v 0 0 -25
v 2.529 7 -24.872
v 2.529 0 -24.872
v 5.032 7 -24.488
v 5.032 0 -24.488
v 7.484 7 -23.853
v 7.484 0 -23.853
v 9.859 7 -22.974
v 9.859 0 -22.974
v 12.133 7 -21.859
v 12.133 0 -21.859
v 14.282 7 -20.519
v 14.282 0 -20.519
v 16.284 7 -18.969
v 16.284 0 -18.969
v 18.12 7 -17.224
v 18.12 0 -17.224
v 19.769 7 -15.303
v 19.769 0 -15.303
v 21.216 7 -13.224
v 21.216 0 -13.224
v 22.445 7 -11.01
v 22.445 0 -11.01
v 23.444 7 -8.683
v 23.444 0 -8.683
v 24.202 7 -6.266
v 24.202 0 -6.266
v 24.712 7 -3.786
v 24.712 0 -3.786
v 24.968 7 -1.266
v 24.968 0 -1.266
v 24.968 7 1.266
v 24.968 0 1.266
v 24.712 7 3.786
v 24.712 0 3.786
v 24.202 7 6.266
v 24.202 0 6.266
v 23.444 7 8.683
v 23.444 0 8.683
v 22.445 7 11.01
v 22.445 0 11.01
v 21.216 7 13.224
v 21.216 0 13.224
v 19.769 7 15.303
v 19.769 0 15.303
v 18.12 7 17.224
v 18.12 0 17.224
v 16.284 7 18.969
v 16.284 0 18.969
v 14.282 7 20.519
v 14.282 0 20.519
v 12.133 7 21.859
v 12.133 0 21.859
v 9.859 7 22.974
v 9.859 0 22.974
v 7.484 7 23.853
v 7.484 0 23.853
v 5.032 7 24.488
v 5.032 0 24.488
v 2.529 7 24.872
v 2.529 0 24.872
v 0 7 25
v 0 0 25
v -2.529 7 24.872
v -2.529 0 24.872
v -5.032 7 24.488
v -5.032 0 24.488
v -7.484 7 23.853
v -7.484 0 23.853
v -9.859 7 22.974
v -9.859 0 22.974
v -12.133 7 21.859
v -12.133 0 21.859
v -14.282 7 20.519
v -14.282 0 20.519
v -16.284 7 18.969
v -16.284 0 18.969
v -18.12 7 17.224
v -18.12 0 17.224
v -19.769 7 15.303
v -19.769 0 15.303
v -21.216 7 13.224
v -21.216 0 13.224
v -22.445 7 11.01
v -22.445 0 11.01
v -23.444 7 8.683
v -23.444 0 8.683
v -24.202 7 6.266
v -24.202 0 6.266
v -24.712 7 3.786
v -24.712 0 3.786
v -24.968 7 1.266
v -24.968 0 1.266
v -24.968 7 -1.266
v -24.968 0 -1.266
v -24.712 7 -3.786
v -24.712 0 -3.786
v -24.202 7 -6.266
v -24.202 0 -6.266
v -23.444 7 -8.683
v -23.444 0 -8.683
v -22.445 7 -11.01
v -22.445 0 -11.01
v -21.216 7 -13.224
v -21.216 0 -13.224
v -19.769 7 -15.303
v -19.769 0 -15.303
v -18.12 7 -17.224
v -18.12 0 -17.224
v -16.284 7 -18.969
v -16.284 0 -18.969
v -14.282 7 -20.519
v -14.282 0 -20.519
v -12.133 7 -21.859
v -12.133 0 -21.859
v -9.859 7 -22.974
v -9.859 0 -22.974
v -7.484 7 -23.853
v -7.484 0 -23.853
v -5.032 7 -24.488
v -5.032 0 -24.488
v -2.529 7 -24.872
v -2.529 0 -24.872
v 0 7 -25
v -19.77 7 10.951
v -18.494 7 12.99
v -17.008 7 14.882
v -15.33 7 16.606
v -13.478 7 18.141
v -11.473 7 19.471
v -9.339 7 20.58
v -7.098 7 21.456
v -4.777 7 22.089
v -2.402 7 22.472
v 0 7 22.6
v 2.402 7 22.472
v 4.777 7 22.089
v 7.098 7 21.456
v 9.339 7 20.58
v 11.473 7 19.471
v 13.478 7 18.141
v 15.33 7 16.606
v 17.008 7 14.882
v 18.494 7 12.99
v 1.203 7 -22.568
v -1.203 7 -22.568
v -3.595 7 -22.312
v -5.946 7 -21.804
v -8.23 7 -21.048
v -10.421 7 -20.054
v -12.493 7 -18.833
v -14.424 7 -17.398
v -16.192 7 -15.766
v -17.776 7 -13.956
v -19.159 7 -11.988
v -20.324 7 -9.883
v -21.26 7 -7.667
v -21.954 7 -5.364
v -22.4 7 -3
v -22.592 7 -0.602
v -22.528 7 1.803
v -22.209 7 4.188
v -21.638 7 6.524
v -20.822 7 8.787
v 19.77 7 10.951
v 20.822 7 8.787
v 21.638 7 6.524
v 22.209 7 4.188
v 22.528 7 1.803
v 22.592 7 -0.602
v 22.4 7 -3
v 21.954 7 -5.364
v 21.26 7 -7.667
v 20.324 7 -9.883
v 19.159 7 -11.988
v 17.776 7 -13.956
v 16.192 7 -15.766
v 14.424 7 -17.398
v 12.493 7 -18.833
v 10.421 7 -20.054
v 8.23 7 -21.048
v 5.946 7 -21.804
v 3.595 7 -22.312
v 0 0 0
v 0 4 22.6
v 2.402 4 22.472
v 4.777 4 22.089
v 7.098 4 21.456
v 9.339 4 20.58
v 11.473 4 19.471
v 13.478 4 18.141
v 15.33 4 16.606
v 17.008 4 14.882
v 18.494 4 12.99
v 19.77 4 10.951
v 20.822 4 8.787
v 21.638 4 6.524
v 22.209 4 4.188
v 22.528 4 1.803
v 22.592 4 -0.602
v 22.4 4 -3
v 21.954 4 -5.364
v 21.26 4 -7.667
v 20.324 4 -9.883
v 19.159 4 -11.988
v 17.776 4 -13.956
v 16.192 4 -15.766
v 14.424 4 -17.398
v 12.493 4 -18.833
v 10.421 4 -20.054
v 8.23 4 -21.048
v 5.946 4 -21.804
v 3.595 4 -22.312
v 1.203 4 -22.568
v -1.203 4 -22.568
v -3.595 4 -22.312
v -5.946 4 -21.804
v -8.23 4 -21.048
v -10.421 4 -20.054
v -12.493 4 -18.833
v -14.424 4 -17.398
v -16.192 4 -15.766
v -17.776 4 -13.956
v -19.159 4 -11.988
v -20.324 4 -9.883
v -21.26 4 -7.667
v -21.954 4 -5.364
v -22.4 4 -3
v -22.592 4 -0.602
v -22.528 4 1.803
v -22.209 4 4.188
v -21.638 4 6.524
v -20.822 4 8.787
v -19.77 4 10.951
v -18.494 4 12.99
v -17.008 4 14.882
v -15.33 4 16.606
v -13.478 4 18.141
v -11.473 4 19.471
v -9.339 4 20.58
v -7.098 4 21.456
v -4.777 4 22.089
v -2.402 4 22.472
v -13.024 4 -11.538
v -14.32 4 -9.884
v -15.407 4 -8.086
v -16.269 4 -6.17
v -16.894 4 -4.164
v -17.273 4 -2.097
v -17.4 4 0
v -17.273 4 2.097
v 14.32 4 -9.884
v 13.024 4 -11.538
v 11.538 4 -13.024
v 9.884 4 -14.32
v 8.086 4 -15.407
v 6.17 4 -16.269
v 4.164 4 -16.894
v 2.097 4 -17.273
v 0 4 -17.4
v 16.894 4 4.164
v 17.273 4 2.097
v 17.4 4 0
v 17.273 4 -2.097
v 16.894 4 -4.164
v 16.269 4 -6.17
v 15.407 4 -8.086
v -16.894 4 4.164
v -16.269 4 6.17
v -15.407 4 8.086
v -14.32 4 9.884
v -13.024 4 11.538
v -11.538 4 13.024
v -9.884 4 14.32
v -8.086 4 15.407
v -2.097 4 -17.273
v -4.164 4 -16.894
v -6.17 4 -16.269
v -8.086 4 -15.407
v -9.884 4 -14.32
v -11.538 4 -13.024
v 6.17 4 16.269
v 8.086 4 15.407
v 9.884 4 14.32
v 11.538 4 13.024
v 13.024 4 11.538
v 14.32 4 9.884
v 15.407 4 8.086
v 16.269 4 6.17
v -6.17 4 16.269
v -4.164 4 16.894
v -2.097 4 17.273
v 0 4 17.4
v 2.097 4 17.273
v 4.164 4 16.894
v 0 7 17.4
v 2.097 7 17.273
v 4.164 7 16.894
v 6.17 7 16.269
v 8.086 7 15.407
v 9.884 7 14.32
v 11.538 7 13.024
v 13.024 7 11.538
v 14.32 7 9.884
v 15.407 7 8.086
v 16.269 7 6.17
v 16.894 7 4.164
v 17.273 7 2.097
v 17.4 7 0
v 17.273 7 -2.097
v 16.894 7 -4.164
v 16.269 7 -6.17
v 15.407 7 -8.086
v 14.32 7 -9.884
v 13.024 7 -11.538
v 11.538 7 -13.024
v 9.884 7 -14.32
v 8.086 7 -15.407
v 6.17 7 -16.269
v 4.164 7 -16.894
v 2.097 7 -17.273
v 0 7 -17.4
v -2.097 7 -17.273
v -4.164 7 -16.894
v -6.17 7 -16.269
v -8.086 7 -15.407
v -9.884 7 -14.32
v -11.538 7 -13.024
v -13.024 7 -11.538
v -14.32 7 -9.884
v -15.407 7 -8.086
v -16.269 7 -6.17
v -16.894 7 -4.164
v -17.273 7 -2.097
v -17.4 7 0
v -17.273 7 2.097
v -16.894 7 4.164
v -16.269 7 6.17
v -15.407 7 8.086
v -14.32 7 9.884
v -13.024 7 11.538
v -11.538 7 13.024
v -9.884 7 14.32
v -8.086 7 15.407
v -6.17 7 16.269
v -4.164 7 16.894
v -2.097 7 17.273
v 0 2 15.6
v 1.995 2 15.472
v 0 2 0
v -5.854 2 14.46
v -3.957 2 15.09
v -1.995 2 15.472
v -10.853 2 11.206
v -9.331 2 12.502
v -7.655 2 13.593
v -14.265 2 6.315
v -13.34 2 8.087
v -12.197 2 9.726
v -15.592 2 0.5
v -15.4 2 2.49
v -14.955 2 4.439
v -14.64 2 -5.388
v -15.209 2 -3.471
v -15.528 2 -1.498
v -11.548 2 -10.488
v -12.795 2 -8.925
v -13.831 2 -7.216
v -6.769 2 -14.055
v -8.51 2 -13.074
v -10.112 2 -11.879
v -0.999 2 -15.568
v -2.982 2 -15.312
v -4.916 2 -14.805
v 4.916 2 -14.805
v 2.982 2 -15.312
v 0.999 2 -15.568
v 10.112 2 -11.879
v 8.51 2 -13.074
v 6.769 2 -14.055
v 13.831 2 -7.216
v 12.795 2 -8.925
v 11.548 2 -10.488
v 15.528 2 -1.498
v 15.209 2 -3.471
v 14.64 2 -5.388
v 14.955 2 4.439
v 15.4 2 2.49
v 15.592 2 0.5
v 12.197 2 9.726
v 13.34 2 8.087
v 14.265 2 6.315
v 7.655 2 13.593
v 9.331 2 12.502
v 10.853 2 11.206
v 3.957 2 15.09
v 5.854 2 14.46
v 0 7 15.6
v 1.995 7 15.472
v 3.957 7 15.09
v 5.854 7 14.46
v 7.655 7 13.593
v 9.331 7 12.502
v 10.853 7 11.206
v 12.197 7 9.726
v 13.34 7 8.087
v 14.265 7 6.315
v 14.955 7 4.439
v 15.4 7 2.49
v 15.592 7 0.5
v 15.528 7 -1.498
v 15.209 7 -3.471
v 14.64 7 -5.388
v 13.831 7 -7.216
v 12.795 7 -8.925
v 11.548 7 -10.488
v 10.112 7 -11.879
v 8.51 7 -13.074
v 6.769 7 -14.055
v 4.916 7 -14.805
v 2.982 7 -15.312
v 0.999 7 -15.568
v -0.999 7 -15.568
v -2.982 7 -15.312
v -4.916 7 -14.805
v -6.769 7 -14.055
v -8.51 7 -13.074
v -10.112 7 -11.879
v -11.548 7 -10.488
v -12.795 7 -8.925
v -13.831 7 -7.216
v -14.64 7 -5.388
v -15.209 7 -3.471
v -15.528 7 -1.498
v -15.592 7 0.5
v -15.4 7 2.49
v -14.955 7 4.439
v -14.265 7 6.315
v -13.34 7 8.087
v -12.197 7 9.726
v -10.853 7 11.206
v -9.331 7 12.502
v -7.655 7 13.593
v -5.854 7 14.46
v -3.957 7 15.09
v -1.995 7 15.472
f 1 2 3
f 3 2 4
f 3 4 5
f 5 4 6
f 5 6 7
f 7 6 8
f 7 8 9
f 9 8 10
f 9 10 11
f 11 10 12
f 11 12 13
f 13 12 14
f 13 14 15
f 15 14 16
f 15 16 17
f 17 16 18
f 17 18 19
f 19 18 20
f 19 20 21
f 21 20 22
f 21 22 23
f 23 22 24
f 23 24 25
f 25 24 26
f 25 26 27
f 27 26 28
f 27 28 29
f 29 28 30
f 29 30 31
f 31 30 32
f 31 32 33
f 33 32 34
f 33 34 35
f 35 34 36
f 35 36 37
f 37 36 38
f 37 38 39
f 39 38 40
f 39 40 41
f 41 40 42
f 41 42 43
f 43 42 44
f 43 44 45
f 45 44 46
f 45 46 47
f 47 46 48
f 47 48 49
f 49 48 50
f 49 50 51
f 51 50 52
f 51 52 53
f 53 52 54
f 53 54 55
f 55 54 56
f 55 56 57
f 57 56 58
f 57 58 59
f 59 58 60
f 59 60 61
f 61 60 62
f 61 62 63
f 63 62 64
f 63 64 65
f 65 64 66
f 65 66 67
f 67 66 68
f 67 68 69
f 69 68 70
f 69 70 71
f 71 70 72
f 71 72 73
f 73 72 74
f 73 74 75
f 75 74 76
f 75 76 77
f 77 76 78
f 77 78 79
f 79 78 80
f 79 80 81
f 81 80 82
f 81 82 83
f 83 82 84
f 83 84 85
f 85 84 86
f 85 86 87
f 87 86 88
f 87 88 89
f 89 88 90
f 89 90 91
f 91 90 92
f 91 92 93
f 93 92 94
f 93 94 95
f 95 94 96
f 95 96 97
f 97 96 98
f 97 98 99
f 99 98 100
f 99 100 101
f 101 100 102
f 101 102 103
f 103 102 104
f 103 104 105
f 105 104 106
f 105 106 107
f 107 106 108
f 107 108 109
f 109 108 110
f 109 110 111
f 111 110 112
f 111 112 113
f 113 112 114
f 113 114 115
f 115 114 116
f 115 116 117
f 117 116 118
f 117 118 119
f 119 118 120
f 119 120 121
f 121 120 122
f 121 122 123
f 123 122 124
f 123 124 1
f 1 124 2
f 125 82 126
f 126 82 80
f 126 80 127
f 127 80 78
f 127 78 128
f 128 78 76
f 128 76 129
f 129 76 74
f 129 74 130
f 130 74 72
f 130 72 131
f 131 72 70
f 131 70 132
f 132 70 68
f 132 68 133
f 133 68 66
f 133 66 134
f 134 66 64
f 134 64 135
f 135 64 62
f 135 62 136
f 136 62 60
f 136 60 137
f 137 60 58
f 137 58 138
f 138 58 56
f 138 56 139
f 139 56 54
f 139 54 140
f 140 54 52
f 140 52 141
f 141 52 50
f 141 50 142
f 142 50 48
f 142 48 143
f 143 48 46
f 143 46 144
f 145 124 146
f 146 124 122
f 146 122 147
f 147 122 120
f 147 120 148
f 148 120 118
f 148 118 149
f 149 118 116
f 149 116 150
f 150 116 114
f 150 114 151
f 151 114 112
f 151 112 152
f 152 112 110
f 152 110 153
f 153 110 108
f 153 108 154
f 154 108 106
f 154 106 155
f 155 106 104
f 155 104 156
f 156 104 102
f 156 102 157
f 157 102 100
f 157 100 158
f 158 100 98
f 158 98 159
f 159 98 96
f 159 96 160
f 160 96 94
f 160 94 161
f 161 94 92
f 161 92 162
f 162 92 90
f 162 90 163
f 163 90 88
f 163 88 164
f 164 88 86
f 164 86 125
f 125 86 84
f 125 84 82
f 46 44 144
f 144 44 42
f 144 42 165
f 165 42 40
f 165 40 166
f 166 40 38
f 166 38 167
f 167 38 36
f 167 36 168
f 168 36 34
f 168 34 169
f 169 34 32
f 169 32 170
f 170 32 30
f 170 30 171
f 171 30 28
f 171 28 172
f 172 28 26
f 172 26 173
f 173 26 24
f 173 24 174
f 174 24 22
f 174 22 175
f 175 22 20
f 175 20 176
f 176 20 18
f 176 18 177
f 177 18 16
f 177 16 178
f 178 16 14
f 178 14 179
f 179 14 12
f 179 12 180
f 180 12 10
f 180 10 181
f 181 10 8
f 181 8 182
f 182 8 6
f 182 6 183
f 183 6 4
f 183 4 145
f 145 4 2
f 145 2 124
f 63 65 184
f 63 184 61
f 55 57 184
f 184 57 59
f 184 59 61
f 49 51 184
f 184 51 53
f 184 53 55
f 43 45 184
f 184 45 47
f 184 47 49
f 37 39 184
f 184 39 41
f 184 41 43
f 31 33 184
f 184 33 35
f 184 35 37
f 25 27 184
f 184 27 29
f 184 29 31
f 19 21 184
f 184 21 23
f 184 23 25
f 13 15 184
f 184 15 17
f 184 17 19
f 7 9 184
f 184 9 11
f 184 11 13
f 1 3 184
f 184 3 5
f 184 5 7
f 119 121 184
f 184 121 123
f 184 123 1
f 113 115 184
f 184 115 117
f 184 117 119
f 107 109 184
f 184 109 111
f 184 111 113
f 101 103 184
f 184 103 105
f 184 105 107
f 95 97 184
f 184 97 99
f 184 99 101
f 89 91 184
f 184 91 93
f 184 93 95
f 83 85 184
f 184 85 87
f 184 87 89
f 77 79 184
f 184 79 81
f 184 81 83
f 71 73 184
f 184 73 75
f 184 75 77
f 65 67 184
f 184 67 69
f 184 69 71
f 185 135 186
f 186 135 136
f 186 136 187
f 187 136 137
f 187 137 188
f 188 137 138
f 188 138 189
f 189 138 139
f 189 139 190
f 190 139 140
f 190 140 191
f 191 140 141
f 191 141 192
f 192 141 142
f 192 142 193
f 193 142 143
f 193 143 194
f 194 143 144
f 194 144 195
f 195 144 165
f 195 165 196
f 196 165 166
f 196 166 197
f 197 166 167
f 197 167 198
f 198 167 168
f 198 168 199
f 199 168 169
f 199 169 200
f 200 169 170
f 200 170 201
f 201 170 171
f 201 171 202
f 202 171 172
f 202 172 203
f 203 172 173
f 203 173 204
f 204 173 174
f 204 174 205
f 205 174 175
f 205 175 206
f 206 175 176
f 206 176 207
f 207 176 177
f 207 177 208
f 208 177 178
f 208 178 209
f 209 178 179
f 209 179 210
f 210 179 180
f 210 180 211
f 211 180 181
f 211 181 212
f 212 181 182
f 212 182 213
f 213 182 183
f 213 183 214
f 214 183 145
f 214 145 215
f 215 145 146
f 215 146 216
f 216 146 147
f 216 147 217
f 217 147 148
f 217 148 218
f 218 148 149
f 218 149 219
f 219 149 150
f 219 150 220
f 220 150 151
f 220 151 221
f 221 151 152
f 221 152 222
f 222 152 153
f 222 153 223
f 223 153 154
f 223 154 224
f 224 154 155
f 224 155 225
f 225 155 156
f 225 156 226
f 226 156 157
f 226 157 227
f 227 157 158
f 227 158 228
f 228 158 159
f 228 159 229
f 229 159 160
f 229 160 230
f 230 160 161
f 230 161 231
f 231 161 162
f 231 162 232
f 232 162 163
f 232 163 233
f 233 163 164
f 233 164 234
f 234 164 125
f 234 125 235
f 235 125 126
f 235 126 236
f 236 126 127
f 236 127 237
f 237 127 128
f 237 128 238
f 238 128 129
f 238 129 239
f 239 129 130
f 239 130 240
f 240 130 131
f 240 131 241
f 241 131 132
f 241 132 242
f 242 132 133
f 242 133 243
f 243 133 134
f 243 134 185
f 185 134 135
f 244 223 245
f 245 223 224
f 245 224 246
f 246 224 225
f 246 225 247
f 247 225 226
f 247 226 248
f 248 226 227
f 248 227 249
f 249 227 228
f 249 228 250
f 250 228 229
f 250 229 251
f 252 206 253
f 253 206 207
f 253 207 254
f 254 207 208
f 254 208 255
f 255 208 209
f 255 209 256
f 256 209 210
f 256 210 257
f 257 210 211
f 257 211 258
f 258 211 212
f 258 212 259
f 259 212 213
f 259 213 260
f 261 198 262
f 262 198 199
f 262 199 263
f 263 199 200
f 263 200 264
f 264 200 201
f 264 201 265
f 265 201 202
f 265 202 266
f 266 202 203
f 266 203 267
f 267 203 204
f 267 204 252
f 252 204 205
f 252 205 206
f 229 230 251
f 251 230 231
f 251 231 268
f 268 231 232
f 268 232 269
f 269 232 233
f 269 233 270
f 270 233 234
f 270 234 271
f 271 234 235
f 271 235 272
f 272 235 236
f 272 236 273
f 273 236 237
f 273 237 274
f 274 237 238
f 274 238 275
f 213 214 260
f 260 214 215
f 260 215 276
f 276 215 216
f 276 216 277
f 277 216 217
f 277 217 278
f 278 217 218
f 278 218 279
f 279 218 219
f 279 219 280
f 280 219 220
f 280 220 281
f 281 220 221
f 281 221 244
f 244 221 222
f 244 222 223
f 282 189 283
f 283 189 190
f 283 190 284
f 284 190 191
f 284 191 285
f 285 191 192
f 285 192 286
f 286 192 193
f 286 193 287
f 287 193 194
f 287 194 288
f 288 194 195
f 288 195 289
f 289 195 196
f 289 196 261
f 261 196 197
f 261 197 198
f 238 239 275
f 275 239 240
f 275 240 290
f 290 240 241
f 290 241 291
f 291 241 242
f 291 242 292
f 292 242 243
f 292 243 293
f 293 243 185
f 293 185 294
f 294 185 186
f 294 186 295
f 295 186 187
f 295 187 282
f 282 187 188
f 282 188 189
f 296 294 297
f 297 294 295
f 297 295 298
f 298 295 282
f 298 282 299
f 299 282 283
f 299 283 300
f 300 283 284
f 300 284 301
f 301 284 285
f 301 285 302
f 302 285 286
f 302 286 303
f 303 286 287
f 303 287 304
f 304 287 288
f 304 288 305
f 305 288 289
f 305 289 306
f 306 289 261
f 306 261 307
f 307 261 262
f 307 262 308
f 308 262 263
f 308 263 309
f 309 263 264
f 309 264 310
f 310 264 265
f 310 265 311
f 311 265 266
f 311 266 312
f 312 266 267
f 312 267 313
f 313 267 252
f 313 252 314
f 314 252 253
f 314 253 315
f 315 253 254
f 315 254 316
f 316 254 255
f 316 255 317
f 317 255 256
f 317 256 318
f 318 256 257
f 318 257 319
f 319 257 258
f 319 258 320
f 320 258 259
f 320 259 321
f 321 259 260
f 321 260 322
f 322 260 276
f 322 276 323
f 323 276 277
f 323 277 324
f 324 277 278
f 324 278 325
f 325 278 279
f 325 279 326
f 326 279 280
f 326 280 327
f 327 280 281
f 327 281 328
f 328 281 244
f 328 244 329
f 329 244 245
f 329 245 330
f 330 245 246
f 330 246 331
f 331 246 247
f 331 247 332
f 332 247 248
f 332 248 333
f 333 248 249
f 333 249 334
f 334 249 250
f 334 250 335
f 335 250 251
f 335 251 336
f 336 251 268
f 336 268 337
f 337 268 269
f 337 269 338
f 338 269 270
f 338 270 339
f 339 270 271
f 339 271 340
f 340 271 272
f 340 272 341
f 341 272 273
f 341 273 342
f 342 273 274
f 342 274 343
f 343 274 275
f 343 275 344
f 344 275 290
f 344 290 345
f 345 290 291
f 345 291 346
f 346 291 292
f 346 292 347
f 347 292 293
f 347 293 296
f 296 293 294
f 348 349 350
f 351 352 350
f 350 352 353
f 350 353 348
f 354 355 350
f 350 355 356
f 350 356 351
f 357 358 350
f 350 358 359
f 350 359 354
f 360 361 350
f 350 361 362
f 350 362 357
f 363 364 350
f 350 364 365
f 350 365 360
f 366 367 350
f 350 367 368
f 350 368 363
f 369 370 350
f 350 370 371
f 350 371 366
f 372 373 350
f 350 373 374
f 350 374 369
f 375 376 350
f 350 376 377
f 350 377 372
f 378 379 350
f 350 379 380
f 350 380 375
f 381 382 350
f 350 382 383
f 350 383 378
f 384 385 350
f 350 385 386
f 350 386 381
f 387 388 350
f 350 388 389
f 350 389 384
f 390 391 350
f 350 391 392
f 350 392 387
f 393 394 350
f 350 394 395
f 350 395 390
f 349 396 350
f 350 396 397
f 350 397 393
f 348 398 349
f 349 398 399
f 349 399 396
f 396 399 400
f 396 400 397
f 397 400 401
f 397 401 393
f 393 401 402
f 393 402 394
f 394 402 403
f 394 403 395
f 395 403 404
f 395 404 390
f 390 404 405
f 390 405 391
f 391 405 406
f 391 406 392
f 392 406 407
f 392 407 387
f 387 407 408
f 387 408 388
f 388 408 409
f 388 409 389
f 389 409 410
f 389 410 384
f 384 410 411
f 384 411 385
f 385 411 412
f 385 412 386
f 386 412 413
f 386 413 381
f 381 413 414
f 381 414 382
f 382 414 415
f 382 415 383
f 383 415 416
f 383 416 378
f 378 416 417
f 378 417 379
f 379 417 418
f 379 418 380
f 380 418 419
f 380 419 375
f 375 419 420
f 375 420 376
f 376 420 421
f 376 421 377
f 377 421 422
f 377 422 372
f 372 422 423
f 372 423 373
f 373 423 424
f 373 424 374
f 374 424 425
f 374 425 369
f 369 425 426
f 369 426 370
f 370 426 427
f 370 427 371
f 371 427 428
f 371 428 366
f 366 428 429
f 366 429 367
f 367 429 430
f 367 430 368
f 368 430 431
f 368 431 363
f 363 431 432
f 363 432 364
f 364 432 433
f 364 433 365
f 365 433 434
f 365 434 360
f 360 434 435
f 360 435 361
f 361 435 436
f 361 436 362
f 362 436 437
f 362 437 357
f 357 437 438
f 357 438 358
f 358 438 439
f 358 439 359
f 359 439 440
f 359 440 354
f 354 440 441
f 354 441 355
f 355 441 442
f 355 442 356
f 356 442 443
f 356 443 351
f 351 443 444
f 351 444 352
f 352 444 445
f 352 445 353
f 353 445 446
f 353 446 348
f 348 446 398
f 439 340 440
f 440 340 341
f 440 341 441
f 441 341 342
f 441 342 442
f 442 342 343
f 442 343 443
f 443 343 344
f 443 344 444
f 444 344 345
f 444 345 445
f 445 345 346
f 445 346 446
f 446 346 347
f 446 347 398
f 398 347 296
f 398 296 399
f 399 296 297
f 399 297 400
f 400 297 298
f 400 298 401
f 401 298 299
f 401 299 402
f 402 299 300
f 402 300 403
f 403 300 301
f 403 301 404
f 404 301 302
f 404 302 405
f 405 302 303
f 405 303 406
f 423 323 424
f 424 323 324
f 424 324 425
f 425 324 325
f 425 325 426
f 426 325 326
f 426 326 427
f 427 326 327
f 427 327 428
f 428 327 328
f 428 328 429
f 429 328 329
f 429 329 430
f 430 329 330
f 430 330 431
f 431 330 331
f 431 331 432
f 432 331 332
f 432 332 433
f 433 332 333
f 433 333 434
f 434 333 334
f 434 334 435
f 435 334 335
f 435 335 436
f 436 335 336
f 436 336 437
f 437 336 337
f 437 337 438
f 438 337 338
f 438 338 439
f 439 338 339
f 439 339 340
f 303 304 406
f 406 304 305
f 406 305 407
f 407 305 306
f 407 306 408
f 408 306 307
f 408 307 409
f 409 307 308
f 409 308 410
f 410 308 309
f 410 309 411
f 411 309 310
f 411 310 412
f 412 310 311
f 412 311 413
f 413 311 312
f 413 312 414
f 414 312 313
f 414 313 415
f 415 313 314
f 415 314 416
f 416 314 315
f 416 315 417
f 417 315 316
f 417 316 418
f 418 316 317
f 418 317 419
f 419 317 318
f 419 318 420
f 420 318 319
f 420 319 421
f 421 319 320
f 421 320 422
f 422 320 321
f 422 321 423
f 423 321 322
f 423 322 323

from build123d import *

# Parameters (mm, degrees)
ESQUISSE2_R             = 25
BOSS_EXTRU_1_DEPTH      = 7
ESQUISSE3_R             = 15.6
ENL_V_MAT_EXTRU_1_DEPTH = 5
ESQUISSE5_R             = 22.6
ESQUISSE5_R_2           = 17.4
ENL_V_MAT_EXTRU_2_DEPTH = 3


with BuildPart() as part:
    # Esquisse2 → Boss.-Extru.1 (new body)
    with BuildSketch(Plane(origin=(0, 0, 0), x_dir=(1, 0, 0), z_dir=(0, 1, 0))):
        Circle(ESQUISSE2_R)
    extrude(amount=BOSS_EXTRU_1_DEPTH)

    # Esquisse3 → Enlèv. mat.-Extru.1 (cut)
    with BuildSketch(Plane(origin=(0, 7, 0), x_dir=(1, 0, 0), z_dir=(0, 1, 0))):
        Circle(ESQUISSE3_R)
    extrude(amount=-ENL_V_MAT_EXTRU_1_DEPTH, mode=Mode.SUBTRACT)

    # Esquisse5 → Enlèv. mat.-Extru.2 (cut)
    with BuildSketch(Plane(origin=(0, 7, 0), x_dir=(1, 0, 0), z_dir=(0, 1, 0))):
        Circle(ESQUISSE5_R)
        Circle(ESQUISSE5_R_2, mode=Mode.SUBTRACT)
    extrude(amount=-ENL_V_MAT_EXTRU_2_DEPTH, mode=Mode.SUBTRACT)


solid = part.part
